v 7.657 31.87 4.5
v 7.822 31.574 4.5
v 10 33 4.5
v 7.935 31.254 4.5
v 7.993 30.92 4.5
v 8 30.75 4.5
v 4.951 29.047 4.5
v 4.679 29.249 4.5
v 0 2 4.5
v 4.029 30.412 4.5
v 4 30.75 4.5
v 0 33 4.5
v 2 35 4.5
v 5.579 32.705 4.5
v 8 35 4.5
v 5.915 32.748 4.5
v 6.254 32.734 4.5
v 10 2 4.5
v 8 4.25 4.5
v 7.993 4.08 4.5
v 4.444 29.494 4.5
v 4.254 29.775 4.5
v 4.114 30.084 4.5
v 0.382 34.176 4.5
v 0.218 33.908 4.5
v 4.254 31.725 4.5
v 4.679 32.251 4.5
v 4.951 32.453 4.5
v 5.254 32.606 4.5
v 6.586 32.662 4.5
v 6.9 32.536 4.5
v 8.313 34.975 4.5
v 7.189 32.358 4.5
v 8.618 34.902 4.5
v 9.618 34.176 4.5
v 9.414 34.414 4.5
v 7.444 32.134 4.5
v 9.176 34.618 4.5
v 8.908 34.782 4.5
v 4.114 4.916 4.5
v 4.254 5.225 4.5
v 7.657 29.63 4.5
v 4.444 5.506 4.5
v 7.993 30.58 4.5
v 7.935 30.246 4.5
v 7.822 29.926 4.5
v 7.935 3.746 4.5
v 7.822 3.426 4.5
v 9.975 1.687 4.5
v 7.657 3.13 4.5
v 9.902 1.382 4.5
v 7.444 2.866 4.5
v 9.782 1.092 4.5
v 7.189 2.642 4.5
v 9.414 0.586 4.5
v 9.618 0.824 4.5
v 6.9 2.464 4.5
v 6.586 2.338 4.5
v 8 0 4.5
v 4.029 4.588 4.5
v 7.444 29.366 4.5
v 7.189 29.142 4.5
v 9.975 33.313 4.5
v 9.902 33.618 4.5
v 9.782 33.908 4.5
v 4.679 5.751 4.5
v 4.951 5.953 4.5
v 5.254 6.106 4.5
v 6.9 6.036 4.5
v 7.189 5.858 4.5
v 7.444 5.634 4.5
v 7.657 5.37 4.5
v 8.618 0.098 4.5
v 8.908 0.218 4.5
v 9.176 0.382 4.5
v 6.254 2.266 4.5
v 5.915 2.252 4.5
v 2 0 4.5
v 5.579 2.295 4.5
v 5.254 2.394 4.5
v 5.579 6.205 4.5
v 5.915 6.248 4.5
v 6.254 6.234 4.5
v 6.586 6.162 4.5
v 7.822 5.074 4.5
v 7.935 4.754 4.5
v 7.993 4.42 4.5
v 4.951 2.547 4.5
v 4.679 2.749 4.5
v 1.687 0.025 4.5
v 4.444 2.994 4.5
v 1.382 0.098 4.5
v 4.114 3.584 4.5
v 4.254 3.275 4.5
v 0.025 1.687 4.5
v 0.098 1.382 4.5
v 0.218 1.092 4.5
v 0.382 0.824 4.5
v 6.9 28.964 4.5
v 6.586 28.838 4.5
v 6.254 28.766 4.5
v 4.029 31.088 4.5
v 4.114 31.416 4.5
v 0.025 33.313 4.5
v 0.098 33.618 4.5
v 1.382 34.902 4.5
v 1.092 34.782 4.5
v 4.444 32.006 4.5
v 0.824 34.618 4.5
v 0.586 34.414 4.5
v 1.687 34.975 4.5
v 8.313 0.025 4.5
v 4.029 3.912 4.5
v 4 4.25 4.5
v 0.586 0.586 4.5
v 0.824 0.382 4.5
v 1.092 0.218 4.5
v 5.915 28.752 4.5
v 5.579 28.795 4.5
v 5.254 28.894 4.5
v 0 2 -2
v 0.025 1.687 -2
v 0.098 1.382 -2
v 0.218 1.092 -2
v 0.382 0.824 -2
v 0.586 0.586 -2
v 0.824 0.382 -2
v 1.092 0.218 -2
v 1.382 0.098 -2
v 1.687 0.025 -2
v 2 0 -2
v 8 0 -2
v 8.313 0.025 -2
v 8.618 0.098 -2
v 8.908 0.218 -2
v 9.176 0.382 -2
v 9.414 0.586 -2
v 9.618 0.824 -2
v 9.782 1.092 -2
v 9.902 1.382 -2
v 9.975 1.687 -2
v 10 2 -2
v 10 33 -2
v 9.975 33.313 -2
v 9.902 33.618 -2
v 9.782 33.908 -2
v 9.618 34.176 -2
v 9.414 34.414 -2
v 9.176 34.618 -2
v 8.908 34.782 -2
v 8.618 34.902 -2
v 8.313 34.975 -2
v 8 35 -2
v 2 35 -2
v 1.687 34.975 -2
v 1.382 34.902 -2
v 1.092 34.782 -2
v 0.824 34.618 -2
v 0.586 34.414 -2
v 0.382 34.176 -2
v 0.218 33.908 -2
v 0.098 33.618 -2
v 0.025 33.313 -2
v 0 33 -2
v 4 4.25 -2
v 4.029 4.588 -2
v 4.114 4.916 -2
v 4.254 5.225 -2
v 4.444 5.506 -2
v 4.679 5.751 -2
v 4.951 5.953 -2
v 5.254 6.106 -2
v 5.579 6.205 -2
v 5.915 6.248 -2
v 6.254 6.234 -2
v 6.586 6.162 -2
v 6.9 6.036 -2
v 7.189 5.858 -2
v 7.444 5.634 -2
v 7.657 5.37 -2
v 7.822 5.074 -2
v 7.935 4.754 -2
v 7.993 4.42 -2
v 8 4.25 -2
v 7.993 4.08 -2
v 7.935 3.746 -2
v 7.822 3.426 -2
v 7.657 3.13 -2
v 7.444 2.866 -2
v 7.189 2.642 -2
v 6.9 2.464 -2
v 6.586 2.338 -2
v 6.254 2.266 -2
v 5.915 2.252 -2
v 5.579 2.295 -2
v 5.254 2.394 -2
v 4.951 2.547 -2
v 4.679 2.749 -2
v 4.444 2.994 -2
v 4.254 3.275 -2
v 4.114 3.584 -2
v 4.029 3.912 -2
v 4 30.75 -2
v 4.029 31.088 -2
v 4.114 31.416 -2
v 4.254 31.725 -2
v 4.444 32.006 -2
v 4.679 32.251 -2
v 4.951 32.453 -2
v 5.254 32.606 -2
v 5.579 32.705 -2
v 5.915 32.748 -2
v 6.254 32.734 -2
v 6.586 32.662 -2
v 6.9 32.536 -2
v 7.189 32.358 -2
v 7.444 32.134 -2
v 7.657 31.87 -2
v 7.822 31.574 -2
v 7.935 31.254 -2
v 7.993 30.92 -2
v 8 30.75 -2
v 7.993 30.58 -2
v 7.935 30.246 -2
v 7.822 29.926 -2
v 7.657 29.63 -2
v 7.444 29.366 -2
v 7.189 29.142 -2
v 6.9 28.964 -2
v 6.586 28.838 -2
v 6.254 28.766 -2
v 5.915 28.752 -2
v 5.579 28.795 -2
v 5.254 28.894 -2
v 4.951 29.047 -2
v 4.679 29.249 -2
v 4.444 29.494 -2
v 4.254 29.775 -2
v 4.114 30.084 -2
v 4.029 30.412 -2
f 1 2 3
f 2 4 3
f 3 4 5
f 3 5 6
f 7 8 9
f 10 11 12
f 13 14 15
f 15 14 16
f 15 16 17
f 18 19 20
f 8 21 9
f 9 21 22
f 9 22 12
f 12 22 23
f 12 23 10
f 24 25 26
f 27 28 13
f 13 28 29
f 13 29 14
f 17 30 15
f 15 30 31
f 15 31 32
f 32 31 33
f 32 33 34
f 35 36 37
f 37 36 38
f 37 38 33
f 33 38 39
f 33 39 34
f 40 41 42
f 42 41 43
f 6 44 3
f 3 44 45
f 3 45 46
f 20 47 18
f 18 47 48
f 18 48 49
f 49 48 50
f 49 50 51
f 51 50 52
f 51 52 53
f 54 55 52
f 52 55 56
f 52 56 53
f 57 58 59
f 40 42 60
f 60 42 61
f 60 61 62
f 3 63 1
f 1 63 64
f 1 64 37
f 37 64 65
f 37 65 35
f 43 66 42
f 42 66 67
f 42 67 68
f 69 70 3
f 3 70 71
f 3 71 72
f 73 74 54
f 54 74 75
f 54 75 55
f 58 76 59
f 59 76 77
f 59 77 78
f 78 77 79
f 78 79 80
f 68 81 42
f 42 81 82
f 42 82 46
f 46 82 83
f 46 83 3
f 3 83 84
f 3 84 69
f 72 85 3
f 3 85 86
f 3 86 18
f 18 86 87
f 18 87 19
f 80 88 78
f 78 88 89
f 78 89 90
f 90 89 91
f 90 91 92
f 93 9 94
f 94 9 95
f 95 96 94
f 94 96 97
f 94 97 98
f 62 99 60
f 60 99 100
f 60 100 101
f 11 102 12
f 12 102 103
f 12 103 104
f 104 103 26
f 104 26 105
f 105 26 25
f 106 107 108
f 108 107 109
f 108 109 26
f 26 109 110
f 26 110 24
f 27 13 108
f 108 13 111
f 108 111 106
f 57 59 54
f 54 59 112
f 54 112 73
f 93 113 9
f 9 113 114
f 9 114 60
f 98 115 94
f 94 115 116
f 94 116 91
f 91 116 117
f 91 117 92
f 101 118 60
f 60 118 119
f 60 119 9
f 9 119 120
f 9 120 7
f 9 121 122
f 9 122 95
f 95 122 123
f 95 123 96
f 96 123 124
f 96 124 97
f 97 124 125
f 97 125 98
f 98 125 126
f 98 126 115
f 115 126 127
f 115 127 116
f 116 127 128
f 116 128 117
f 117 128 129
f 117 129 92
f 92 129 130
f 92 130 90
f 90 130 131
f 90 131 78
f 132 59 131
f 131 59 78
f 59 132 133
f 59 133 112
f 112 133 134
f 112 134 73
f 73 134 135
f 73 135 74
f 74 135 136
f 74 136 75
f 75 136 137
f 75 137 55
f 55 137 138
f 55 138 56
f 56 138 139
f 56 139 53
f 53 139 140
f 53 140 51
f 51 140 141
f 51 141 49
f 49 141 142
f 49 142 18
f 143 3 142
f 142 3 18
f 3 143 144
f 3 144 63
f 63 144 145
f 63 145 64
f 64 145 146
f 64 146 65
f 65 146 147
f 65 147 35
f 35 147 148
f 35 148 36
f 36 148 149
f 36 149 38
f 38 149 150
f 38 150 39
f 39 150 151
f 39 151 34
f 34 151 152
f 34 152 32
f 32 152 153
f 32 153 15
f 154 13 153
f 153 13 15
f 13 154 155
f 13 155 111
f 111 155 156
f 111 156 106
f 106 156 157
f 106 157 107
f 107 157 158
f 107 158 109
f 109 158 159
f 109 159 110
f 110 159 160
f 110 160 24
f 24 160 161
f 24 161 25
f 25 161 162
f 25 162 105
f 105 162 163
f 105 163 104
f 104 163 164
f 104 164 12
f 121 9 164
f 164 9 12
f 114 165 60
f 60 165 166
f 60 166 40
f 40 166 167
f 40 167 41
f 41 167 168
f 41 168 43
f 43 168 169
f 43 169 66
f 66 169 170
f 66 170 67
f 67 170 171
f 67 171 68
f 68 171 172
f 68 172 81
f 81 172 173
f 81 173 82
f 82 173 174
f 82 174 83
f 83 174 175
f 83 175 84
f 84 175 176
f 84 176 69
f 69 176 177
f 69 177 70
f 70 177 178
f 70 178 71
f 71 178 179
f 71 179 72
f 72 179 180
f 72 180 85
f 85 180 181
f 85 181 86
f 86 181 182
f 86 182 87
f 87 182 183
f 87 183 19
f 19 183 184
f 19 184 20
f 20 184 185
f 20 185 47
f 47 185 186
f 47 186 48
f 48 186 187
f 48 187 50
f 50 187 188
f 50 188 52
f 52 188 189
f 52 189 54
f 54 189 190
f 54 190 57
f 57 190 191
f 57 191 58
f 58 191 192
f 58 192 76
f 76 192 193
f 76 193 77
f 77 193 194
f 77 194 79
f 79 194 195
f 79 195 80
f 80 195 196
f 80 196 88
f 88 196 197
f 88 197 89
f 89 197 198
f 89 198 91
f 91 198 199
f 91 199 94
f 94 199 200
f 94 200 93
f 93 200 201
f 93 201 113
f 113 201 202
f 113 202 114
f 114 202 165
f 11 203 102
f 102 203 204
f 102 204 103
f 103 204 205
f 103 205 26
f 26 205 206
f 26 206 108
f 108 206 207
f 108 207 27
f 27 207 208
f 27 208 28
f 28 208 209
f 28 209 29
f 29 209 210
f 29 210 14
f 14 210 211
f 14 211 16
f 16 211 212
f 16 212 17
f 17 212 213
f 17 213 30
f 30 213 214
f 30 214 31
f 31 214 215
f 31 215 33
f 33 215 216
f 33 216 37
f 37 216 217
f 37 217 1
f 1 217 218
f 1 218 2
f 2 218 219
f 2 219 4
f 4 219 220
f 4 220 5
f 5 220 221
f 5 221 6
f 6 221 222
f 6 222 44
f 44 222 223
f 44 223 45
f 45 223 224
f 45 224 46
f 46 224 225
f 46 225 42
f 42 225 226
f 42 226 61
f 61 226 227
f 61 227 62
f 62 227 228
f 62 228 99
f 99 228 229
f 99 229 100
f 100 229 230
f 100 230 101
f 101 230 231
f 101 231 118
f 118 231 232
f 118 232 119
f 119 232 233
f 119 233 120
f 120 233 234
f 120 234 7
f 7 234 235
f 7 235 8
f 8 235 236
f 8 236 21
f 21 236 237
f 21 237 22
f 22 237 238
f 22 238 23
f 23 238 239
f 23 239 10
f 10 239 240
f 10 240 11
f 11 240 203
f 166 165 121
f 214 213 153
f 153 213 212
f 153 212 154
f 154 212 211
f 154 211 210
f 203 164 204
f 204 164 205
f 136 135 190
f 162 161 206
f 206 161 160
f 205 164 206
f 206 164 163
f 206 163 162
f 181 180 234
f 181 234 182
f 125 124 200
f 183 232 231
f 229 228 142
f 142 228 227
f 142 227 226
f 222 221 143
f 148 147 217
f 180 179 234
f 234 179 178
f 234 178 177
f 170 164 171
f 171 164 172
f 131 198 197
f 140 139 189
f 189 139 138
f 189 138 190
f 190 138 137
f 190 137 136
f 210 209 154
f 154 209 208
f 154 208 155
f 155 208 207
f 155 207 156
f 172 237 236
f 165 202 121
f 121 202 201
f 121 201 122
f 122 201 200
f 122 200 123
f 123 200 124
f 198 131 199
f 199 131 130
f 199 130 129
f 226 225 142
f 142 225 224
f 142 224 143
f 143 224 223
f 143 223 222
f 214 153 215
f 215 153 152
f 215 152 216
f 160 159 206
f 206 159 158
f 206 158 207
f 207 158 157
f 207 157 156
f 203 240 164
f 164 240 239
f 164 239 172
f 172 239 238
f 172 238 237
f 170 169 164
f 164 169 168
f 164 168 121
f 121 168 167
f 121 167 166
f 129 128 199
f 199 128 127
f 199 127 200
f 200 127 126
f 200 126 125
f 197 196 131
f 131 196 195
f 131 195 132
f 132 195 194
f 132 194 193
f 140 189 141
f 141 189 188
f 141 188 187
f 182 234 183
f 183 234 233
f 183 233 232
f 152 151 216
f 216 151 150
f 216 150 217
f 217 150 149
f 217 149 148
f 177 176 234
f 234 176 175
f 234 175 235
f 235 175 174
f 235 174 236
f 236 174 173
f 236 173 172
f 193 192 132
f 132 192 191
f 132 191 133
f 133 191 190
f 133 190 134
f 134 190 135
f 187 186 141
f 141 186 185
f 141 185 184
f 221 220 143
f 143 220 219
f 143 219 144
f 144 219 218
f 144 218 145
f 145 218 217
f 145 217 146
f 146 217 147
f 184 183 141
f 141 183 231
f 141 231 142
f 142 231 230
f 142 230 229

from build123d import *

# Parameters (mm, degrees)
ESBO_O2_R                = 2
RESSALTO_EXTRUS_O1_DEPTH = 4.5
RESSALTO_EXTRUS_O2_START = 2
RESSALTO_EXTRUS_O2_DEPTH = 2
ESBO_O4_R                = 2
CORTE_EXTRUS_O2_DEPTH    = 37.976343789


with BuildPart() as part:
    # Esboço2 → Ressalto-extrusão1 (new body)
    with BuildSketch(Plane.XY):
        with BuildLine():
            Line((0, 2), (0, 33))
            ThreePointArc((0, 33), (0.585786438, 34.414213562), (2, 35))
            Line((2, 35), (8, 35))
            ThreePointArc((8, 35), (9.414213562, 34.414213562), (10, 33))
            Line((10, 33), (10, 2))
            ThreePointArc((10, 2), (9.414213562, 0.585786438), (8, 0))
            Line((8, 0), (2, 0))
            ThreePointArc((2, 0), (0.585786438, 0.585786438), (0, 2))
        make_face()
        with Locations((6, 4.25)):
            Circle(ESBO_O2_R, mode=Mode.SUBTRACT)
        with Locations((6, 30.75)):
            Circle(ESBO_O2_R, mode=Mode.SUBTRACT)
    extrude(amount=RESSALTO_EXTRUS_O1_DEPTH)

    # Esboço3 → Ressalto-extrusão2 (add)
    with BuildSketch(Plane(origin=(0, 0, 0), x_dir=(-1, 0, 0), z_dir=(0, 0, -1)).offset(RESSALTO_EXTRUS_O2_START)):
        with BuildLine():
            Line((0, 2), (0, 33))
            ThreePointArc((0, 33), (-0.585786438, 34.414213562), (-2, 35))
            Line((-2, 35), (-8, 35))
            ThreePointArc((-8, 35), (-9.414213562, 34.414213562), (-10, 33))
            Line((-10, 33), (-10, 2))
            ThreePointArc((-10, 2), (-9.414213562, 0.585786438), (-8, 0))
            Line((-8, 0), (-2, 0))
            ThreePointArc((-2, 0), (-0.585786438, 0.585786438), (0, 2))
        make_face()
    extrude(amount=-RESSALTO_EXTRUS_O2_DEPTH)

    # Esboço4 → Corte-extrusão2 (cut, through all)
    with BuildSketch(Plane.XY.offset(4.5)):
        with Locations((6, 4.25)):
            Circle(ESBO_O4_R)
        with Locations((6, 30.75)):
            Circle(ESBO_O4_R)
    extrude(amount=-CORTE_EXTRUS_O2_DEPTH, mode=Mode.SUBTRACT)


solid = part.part
